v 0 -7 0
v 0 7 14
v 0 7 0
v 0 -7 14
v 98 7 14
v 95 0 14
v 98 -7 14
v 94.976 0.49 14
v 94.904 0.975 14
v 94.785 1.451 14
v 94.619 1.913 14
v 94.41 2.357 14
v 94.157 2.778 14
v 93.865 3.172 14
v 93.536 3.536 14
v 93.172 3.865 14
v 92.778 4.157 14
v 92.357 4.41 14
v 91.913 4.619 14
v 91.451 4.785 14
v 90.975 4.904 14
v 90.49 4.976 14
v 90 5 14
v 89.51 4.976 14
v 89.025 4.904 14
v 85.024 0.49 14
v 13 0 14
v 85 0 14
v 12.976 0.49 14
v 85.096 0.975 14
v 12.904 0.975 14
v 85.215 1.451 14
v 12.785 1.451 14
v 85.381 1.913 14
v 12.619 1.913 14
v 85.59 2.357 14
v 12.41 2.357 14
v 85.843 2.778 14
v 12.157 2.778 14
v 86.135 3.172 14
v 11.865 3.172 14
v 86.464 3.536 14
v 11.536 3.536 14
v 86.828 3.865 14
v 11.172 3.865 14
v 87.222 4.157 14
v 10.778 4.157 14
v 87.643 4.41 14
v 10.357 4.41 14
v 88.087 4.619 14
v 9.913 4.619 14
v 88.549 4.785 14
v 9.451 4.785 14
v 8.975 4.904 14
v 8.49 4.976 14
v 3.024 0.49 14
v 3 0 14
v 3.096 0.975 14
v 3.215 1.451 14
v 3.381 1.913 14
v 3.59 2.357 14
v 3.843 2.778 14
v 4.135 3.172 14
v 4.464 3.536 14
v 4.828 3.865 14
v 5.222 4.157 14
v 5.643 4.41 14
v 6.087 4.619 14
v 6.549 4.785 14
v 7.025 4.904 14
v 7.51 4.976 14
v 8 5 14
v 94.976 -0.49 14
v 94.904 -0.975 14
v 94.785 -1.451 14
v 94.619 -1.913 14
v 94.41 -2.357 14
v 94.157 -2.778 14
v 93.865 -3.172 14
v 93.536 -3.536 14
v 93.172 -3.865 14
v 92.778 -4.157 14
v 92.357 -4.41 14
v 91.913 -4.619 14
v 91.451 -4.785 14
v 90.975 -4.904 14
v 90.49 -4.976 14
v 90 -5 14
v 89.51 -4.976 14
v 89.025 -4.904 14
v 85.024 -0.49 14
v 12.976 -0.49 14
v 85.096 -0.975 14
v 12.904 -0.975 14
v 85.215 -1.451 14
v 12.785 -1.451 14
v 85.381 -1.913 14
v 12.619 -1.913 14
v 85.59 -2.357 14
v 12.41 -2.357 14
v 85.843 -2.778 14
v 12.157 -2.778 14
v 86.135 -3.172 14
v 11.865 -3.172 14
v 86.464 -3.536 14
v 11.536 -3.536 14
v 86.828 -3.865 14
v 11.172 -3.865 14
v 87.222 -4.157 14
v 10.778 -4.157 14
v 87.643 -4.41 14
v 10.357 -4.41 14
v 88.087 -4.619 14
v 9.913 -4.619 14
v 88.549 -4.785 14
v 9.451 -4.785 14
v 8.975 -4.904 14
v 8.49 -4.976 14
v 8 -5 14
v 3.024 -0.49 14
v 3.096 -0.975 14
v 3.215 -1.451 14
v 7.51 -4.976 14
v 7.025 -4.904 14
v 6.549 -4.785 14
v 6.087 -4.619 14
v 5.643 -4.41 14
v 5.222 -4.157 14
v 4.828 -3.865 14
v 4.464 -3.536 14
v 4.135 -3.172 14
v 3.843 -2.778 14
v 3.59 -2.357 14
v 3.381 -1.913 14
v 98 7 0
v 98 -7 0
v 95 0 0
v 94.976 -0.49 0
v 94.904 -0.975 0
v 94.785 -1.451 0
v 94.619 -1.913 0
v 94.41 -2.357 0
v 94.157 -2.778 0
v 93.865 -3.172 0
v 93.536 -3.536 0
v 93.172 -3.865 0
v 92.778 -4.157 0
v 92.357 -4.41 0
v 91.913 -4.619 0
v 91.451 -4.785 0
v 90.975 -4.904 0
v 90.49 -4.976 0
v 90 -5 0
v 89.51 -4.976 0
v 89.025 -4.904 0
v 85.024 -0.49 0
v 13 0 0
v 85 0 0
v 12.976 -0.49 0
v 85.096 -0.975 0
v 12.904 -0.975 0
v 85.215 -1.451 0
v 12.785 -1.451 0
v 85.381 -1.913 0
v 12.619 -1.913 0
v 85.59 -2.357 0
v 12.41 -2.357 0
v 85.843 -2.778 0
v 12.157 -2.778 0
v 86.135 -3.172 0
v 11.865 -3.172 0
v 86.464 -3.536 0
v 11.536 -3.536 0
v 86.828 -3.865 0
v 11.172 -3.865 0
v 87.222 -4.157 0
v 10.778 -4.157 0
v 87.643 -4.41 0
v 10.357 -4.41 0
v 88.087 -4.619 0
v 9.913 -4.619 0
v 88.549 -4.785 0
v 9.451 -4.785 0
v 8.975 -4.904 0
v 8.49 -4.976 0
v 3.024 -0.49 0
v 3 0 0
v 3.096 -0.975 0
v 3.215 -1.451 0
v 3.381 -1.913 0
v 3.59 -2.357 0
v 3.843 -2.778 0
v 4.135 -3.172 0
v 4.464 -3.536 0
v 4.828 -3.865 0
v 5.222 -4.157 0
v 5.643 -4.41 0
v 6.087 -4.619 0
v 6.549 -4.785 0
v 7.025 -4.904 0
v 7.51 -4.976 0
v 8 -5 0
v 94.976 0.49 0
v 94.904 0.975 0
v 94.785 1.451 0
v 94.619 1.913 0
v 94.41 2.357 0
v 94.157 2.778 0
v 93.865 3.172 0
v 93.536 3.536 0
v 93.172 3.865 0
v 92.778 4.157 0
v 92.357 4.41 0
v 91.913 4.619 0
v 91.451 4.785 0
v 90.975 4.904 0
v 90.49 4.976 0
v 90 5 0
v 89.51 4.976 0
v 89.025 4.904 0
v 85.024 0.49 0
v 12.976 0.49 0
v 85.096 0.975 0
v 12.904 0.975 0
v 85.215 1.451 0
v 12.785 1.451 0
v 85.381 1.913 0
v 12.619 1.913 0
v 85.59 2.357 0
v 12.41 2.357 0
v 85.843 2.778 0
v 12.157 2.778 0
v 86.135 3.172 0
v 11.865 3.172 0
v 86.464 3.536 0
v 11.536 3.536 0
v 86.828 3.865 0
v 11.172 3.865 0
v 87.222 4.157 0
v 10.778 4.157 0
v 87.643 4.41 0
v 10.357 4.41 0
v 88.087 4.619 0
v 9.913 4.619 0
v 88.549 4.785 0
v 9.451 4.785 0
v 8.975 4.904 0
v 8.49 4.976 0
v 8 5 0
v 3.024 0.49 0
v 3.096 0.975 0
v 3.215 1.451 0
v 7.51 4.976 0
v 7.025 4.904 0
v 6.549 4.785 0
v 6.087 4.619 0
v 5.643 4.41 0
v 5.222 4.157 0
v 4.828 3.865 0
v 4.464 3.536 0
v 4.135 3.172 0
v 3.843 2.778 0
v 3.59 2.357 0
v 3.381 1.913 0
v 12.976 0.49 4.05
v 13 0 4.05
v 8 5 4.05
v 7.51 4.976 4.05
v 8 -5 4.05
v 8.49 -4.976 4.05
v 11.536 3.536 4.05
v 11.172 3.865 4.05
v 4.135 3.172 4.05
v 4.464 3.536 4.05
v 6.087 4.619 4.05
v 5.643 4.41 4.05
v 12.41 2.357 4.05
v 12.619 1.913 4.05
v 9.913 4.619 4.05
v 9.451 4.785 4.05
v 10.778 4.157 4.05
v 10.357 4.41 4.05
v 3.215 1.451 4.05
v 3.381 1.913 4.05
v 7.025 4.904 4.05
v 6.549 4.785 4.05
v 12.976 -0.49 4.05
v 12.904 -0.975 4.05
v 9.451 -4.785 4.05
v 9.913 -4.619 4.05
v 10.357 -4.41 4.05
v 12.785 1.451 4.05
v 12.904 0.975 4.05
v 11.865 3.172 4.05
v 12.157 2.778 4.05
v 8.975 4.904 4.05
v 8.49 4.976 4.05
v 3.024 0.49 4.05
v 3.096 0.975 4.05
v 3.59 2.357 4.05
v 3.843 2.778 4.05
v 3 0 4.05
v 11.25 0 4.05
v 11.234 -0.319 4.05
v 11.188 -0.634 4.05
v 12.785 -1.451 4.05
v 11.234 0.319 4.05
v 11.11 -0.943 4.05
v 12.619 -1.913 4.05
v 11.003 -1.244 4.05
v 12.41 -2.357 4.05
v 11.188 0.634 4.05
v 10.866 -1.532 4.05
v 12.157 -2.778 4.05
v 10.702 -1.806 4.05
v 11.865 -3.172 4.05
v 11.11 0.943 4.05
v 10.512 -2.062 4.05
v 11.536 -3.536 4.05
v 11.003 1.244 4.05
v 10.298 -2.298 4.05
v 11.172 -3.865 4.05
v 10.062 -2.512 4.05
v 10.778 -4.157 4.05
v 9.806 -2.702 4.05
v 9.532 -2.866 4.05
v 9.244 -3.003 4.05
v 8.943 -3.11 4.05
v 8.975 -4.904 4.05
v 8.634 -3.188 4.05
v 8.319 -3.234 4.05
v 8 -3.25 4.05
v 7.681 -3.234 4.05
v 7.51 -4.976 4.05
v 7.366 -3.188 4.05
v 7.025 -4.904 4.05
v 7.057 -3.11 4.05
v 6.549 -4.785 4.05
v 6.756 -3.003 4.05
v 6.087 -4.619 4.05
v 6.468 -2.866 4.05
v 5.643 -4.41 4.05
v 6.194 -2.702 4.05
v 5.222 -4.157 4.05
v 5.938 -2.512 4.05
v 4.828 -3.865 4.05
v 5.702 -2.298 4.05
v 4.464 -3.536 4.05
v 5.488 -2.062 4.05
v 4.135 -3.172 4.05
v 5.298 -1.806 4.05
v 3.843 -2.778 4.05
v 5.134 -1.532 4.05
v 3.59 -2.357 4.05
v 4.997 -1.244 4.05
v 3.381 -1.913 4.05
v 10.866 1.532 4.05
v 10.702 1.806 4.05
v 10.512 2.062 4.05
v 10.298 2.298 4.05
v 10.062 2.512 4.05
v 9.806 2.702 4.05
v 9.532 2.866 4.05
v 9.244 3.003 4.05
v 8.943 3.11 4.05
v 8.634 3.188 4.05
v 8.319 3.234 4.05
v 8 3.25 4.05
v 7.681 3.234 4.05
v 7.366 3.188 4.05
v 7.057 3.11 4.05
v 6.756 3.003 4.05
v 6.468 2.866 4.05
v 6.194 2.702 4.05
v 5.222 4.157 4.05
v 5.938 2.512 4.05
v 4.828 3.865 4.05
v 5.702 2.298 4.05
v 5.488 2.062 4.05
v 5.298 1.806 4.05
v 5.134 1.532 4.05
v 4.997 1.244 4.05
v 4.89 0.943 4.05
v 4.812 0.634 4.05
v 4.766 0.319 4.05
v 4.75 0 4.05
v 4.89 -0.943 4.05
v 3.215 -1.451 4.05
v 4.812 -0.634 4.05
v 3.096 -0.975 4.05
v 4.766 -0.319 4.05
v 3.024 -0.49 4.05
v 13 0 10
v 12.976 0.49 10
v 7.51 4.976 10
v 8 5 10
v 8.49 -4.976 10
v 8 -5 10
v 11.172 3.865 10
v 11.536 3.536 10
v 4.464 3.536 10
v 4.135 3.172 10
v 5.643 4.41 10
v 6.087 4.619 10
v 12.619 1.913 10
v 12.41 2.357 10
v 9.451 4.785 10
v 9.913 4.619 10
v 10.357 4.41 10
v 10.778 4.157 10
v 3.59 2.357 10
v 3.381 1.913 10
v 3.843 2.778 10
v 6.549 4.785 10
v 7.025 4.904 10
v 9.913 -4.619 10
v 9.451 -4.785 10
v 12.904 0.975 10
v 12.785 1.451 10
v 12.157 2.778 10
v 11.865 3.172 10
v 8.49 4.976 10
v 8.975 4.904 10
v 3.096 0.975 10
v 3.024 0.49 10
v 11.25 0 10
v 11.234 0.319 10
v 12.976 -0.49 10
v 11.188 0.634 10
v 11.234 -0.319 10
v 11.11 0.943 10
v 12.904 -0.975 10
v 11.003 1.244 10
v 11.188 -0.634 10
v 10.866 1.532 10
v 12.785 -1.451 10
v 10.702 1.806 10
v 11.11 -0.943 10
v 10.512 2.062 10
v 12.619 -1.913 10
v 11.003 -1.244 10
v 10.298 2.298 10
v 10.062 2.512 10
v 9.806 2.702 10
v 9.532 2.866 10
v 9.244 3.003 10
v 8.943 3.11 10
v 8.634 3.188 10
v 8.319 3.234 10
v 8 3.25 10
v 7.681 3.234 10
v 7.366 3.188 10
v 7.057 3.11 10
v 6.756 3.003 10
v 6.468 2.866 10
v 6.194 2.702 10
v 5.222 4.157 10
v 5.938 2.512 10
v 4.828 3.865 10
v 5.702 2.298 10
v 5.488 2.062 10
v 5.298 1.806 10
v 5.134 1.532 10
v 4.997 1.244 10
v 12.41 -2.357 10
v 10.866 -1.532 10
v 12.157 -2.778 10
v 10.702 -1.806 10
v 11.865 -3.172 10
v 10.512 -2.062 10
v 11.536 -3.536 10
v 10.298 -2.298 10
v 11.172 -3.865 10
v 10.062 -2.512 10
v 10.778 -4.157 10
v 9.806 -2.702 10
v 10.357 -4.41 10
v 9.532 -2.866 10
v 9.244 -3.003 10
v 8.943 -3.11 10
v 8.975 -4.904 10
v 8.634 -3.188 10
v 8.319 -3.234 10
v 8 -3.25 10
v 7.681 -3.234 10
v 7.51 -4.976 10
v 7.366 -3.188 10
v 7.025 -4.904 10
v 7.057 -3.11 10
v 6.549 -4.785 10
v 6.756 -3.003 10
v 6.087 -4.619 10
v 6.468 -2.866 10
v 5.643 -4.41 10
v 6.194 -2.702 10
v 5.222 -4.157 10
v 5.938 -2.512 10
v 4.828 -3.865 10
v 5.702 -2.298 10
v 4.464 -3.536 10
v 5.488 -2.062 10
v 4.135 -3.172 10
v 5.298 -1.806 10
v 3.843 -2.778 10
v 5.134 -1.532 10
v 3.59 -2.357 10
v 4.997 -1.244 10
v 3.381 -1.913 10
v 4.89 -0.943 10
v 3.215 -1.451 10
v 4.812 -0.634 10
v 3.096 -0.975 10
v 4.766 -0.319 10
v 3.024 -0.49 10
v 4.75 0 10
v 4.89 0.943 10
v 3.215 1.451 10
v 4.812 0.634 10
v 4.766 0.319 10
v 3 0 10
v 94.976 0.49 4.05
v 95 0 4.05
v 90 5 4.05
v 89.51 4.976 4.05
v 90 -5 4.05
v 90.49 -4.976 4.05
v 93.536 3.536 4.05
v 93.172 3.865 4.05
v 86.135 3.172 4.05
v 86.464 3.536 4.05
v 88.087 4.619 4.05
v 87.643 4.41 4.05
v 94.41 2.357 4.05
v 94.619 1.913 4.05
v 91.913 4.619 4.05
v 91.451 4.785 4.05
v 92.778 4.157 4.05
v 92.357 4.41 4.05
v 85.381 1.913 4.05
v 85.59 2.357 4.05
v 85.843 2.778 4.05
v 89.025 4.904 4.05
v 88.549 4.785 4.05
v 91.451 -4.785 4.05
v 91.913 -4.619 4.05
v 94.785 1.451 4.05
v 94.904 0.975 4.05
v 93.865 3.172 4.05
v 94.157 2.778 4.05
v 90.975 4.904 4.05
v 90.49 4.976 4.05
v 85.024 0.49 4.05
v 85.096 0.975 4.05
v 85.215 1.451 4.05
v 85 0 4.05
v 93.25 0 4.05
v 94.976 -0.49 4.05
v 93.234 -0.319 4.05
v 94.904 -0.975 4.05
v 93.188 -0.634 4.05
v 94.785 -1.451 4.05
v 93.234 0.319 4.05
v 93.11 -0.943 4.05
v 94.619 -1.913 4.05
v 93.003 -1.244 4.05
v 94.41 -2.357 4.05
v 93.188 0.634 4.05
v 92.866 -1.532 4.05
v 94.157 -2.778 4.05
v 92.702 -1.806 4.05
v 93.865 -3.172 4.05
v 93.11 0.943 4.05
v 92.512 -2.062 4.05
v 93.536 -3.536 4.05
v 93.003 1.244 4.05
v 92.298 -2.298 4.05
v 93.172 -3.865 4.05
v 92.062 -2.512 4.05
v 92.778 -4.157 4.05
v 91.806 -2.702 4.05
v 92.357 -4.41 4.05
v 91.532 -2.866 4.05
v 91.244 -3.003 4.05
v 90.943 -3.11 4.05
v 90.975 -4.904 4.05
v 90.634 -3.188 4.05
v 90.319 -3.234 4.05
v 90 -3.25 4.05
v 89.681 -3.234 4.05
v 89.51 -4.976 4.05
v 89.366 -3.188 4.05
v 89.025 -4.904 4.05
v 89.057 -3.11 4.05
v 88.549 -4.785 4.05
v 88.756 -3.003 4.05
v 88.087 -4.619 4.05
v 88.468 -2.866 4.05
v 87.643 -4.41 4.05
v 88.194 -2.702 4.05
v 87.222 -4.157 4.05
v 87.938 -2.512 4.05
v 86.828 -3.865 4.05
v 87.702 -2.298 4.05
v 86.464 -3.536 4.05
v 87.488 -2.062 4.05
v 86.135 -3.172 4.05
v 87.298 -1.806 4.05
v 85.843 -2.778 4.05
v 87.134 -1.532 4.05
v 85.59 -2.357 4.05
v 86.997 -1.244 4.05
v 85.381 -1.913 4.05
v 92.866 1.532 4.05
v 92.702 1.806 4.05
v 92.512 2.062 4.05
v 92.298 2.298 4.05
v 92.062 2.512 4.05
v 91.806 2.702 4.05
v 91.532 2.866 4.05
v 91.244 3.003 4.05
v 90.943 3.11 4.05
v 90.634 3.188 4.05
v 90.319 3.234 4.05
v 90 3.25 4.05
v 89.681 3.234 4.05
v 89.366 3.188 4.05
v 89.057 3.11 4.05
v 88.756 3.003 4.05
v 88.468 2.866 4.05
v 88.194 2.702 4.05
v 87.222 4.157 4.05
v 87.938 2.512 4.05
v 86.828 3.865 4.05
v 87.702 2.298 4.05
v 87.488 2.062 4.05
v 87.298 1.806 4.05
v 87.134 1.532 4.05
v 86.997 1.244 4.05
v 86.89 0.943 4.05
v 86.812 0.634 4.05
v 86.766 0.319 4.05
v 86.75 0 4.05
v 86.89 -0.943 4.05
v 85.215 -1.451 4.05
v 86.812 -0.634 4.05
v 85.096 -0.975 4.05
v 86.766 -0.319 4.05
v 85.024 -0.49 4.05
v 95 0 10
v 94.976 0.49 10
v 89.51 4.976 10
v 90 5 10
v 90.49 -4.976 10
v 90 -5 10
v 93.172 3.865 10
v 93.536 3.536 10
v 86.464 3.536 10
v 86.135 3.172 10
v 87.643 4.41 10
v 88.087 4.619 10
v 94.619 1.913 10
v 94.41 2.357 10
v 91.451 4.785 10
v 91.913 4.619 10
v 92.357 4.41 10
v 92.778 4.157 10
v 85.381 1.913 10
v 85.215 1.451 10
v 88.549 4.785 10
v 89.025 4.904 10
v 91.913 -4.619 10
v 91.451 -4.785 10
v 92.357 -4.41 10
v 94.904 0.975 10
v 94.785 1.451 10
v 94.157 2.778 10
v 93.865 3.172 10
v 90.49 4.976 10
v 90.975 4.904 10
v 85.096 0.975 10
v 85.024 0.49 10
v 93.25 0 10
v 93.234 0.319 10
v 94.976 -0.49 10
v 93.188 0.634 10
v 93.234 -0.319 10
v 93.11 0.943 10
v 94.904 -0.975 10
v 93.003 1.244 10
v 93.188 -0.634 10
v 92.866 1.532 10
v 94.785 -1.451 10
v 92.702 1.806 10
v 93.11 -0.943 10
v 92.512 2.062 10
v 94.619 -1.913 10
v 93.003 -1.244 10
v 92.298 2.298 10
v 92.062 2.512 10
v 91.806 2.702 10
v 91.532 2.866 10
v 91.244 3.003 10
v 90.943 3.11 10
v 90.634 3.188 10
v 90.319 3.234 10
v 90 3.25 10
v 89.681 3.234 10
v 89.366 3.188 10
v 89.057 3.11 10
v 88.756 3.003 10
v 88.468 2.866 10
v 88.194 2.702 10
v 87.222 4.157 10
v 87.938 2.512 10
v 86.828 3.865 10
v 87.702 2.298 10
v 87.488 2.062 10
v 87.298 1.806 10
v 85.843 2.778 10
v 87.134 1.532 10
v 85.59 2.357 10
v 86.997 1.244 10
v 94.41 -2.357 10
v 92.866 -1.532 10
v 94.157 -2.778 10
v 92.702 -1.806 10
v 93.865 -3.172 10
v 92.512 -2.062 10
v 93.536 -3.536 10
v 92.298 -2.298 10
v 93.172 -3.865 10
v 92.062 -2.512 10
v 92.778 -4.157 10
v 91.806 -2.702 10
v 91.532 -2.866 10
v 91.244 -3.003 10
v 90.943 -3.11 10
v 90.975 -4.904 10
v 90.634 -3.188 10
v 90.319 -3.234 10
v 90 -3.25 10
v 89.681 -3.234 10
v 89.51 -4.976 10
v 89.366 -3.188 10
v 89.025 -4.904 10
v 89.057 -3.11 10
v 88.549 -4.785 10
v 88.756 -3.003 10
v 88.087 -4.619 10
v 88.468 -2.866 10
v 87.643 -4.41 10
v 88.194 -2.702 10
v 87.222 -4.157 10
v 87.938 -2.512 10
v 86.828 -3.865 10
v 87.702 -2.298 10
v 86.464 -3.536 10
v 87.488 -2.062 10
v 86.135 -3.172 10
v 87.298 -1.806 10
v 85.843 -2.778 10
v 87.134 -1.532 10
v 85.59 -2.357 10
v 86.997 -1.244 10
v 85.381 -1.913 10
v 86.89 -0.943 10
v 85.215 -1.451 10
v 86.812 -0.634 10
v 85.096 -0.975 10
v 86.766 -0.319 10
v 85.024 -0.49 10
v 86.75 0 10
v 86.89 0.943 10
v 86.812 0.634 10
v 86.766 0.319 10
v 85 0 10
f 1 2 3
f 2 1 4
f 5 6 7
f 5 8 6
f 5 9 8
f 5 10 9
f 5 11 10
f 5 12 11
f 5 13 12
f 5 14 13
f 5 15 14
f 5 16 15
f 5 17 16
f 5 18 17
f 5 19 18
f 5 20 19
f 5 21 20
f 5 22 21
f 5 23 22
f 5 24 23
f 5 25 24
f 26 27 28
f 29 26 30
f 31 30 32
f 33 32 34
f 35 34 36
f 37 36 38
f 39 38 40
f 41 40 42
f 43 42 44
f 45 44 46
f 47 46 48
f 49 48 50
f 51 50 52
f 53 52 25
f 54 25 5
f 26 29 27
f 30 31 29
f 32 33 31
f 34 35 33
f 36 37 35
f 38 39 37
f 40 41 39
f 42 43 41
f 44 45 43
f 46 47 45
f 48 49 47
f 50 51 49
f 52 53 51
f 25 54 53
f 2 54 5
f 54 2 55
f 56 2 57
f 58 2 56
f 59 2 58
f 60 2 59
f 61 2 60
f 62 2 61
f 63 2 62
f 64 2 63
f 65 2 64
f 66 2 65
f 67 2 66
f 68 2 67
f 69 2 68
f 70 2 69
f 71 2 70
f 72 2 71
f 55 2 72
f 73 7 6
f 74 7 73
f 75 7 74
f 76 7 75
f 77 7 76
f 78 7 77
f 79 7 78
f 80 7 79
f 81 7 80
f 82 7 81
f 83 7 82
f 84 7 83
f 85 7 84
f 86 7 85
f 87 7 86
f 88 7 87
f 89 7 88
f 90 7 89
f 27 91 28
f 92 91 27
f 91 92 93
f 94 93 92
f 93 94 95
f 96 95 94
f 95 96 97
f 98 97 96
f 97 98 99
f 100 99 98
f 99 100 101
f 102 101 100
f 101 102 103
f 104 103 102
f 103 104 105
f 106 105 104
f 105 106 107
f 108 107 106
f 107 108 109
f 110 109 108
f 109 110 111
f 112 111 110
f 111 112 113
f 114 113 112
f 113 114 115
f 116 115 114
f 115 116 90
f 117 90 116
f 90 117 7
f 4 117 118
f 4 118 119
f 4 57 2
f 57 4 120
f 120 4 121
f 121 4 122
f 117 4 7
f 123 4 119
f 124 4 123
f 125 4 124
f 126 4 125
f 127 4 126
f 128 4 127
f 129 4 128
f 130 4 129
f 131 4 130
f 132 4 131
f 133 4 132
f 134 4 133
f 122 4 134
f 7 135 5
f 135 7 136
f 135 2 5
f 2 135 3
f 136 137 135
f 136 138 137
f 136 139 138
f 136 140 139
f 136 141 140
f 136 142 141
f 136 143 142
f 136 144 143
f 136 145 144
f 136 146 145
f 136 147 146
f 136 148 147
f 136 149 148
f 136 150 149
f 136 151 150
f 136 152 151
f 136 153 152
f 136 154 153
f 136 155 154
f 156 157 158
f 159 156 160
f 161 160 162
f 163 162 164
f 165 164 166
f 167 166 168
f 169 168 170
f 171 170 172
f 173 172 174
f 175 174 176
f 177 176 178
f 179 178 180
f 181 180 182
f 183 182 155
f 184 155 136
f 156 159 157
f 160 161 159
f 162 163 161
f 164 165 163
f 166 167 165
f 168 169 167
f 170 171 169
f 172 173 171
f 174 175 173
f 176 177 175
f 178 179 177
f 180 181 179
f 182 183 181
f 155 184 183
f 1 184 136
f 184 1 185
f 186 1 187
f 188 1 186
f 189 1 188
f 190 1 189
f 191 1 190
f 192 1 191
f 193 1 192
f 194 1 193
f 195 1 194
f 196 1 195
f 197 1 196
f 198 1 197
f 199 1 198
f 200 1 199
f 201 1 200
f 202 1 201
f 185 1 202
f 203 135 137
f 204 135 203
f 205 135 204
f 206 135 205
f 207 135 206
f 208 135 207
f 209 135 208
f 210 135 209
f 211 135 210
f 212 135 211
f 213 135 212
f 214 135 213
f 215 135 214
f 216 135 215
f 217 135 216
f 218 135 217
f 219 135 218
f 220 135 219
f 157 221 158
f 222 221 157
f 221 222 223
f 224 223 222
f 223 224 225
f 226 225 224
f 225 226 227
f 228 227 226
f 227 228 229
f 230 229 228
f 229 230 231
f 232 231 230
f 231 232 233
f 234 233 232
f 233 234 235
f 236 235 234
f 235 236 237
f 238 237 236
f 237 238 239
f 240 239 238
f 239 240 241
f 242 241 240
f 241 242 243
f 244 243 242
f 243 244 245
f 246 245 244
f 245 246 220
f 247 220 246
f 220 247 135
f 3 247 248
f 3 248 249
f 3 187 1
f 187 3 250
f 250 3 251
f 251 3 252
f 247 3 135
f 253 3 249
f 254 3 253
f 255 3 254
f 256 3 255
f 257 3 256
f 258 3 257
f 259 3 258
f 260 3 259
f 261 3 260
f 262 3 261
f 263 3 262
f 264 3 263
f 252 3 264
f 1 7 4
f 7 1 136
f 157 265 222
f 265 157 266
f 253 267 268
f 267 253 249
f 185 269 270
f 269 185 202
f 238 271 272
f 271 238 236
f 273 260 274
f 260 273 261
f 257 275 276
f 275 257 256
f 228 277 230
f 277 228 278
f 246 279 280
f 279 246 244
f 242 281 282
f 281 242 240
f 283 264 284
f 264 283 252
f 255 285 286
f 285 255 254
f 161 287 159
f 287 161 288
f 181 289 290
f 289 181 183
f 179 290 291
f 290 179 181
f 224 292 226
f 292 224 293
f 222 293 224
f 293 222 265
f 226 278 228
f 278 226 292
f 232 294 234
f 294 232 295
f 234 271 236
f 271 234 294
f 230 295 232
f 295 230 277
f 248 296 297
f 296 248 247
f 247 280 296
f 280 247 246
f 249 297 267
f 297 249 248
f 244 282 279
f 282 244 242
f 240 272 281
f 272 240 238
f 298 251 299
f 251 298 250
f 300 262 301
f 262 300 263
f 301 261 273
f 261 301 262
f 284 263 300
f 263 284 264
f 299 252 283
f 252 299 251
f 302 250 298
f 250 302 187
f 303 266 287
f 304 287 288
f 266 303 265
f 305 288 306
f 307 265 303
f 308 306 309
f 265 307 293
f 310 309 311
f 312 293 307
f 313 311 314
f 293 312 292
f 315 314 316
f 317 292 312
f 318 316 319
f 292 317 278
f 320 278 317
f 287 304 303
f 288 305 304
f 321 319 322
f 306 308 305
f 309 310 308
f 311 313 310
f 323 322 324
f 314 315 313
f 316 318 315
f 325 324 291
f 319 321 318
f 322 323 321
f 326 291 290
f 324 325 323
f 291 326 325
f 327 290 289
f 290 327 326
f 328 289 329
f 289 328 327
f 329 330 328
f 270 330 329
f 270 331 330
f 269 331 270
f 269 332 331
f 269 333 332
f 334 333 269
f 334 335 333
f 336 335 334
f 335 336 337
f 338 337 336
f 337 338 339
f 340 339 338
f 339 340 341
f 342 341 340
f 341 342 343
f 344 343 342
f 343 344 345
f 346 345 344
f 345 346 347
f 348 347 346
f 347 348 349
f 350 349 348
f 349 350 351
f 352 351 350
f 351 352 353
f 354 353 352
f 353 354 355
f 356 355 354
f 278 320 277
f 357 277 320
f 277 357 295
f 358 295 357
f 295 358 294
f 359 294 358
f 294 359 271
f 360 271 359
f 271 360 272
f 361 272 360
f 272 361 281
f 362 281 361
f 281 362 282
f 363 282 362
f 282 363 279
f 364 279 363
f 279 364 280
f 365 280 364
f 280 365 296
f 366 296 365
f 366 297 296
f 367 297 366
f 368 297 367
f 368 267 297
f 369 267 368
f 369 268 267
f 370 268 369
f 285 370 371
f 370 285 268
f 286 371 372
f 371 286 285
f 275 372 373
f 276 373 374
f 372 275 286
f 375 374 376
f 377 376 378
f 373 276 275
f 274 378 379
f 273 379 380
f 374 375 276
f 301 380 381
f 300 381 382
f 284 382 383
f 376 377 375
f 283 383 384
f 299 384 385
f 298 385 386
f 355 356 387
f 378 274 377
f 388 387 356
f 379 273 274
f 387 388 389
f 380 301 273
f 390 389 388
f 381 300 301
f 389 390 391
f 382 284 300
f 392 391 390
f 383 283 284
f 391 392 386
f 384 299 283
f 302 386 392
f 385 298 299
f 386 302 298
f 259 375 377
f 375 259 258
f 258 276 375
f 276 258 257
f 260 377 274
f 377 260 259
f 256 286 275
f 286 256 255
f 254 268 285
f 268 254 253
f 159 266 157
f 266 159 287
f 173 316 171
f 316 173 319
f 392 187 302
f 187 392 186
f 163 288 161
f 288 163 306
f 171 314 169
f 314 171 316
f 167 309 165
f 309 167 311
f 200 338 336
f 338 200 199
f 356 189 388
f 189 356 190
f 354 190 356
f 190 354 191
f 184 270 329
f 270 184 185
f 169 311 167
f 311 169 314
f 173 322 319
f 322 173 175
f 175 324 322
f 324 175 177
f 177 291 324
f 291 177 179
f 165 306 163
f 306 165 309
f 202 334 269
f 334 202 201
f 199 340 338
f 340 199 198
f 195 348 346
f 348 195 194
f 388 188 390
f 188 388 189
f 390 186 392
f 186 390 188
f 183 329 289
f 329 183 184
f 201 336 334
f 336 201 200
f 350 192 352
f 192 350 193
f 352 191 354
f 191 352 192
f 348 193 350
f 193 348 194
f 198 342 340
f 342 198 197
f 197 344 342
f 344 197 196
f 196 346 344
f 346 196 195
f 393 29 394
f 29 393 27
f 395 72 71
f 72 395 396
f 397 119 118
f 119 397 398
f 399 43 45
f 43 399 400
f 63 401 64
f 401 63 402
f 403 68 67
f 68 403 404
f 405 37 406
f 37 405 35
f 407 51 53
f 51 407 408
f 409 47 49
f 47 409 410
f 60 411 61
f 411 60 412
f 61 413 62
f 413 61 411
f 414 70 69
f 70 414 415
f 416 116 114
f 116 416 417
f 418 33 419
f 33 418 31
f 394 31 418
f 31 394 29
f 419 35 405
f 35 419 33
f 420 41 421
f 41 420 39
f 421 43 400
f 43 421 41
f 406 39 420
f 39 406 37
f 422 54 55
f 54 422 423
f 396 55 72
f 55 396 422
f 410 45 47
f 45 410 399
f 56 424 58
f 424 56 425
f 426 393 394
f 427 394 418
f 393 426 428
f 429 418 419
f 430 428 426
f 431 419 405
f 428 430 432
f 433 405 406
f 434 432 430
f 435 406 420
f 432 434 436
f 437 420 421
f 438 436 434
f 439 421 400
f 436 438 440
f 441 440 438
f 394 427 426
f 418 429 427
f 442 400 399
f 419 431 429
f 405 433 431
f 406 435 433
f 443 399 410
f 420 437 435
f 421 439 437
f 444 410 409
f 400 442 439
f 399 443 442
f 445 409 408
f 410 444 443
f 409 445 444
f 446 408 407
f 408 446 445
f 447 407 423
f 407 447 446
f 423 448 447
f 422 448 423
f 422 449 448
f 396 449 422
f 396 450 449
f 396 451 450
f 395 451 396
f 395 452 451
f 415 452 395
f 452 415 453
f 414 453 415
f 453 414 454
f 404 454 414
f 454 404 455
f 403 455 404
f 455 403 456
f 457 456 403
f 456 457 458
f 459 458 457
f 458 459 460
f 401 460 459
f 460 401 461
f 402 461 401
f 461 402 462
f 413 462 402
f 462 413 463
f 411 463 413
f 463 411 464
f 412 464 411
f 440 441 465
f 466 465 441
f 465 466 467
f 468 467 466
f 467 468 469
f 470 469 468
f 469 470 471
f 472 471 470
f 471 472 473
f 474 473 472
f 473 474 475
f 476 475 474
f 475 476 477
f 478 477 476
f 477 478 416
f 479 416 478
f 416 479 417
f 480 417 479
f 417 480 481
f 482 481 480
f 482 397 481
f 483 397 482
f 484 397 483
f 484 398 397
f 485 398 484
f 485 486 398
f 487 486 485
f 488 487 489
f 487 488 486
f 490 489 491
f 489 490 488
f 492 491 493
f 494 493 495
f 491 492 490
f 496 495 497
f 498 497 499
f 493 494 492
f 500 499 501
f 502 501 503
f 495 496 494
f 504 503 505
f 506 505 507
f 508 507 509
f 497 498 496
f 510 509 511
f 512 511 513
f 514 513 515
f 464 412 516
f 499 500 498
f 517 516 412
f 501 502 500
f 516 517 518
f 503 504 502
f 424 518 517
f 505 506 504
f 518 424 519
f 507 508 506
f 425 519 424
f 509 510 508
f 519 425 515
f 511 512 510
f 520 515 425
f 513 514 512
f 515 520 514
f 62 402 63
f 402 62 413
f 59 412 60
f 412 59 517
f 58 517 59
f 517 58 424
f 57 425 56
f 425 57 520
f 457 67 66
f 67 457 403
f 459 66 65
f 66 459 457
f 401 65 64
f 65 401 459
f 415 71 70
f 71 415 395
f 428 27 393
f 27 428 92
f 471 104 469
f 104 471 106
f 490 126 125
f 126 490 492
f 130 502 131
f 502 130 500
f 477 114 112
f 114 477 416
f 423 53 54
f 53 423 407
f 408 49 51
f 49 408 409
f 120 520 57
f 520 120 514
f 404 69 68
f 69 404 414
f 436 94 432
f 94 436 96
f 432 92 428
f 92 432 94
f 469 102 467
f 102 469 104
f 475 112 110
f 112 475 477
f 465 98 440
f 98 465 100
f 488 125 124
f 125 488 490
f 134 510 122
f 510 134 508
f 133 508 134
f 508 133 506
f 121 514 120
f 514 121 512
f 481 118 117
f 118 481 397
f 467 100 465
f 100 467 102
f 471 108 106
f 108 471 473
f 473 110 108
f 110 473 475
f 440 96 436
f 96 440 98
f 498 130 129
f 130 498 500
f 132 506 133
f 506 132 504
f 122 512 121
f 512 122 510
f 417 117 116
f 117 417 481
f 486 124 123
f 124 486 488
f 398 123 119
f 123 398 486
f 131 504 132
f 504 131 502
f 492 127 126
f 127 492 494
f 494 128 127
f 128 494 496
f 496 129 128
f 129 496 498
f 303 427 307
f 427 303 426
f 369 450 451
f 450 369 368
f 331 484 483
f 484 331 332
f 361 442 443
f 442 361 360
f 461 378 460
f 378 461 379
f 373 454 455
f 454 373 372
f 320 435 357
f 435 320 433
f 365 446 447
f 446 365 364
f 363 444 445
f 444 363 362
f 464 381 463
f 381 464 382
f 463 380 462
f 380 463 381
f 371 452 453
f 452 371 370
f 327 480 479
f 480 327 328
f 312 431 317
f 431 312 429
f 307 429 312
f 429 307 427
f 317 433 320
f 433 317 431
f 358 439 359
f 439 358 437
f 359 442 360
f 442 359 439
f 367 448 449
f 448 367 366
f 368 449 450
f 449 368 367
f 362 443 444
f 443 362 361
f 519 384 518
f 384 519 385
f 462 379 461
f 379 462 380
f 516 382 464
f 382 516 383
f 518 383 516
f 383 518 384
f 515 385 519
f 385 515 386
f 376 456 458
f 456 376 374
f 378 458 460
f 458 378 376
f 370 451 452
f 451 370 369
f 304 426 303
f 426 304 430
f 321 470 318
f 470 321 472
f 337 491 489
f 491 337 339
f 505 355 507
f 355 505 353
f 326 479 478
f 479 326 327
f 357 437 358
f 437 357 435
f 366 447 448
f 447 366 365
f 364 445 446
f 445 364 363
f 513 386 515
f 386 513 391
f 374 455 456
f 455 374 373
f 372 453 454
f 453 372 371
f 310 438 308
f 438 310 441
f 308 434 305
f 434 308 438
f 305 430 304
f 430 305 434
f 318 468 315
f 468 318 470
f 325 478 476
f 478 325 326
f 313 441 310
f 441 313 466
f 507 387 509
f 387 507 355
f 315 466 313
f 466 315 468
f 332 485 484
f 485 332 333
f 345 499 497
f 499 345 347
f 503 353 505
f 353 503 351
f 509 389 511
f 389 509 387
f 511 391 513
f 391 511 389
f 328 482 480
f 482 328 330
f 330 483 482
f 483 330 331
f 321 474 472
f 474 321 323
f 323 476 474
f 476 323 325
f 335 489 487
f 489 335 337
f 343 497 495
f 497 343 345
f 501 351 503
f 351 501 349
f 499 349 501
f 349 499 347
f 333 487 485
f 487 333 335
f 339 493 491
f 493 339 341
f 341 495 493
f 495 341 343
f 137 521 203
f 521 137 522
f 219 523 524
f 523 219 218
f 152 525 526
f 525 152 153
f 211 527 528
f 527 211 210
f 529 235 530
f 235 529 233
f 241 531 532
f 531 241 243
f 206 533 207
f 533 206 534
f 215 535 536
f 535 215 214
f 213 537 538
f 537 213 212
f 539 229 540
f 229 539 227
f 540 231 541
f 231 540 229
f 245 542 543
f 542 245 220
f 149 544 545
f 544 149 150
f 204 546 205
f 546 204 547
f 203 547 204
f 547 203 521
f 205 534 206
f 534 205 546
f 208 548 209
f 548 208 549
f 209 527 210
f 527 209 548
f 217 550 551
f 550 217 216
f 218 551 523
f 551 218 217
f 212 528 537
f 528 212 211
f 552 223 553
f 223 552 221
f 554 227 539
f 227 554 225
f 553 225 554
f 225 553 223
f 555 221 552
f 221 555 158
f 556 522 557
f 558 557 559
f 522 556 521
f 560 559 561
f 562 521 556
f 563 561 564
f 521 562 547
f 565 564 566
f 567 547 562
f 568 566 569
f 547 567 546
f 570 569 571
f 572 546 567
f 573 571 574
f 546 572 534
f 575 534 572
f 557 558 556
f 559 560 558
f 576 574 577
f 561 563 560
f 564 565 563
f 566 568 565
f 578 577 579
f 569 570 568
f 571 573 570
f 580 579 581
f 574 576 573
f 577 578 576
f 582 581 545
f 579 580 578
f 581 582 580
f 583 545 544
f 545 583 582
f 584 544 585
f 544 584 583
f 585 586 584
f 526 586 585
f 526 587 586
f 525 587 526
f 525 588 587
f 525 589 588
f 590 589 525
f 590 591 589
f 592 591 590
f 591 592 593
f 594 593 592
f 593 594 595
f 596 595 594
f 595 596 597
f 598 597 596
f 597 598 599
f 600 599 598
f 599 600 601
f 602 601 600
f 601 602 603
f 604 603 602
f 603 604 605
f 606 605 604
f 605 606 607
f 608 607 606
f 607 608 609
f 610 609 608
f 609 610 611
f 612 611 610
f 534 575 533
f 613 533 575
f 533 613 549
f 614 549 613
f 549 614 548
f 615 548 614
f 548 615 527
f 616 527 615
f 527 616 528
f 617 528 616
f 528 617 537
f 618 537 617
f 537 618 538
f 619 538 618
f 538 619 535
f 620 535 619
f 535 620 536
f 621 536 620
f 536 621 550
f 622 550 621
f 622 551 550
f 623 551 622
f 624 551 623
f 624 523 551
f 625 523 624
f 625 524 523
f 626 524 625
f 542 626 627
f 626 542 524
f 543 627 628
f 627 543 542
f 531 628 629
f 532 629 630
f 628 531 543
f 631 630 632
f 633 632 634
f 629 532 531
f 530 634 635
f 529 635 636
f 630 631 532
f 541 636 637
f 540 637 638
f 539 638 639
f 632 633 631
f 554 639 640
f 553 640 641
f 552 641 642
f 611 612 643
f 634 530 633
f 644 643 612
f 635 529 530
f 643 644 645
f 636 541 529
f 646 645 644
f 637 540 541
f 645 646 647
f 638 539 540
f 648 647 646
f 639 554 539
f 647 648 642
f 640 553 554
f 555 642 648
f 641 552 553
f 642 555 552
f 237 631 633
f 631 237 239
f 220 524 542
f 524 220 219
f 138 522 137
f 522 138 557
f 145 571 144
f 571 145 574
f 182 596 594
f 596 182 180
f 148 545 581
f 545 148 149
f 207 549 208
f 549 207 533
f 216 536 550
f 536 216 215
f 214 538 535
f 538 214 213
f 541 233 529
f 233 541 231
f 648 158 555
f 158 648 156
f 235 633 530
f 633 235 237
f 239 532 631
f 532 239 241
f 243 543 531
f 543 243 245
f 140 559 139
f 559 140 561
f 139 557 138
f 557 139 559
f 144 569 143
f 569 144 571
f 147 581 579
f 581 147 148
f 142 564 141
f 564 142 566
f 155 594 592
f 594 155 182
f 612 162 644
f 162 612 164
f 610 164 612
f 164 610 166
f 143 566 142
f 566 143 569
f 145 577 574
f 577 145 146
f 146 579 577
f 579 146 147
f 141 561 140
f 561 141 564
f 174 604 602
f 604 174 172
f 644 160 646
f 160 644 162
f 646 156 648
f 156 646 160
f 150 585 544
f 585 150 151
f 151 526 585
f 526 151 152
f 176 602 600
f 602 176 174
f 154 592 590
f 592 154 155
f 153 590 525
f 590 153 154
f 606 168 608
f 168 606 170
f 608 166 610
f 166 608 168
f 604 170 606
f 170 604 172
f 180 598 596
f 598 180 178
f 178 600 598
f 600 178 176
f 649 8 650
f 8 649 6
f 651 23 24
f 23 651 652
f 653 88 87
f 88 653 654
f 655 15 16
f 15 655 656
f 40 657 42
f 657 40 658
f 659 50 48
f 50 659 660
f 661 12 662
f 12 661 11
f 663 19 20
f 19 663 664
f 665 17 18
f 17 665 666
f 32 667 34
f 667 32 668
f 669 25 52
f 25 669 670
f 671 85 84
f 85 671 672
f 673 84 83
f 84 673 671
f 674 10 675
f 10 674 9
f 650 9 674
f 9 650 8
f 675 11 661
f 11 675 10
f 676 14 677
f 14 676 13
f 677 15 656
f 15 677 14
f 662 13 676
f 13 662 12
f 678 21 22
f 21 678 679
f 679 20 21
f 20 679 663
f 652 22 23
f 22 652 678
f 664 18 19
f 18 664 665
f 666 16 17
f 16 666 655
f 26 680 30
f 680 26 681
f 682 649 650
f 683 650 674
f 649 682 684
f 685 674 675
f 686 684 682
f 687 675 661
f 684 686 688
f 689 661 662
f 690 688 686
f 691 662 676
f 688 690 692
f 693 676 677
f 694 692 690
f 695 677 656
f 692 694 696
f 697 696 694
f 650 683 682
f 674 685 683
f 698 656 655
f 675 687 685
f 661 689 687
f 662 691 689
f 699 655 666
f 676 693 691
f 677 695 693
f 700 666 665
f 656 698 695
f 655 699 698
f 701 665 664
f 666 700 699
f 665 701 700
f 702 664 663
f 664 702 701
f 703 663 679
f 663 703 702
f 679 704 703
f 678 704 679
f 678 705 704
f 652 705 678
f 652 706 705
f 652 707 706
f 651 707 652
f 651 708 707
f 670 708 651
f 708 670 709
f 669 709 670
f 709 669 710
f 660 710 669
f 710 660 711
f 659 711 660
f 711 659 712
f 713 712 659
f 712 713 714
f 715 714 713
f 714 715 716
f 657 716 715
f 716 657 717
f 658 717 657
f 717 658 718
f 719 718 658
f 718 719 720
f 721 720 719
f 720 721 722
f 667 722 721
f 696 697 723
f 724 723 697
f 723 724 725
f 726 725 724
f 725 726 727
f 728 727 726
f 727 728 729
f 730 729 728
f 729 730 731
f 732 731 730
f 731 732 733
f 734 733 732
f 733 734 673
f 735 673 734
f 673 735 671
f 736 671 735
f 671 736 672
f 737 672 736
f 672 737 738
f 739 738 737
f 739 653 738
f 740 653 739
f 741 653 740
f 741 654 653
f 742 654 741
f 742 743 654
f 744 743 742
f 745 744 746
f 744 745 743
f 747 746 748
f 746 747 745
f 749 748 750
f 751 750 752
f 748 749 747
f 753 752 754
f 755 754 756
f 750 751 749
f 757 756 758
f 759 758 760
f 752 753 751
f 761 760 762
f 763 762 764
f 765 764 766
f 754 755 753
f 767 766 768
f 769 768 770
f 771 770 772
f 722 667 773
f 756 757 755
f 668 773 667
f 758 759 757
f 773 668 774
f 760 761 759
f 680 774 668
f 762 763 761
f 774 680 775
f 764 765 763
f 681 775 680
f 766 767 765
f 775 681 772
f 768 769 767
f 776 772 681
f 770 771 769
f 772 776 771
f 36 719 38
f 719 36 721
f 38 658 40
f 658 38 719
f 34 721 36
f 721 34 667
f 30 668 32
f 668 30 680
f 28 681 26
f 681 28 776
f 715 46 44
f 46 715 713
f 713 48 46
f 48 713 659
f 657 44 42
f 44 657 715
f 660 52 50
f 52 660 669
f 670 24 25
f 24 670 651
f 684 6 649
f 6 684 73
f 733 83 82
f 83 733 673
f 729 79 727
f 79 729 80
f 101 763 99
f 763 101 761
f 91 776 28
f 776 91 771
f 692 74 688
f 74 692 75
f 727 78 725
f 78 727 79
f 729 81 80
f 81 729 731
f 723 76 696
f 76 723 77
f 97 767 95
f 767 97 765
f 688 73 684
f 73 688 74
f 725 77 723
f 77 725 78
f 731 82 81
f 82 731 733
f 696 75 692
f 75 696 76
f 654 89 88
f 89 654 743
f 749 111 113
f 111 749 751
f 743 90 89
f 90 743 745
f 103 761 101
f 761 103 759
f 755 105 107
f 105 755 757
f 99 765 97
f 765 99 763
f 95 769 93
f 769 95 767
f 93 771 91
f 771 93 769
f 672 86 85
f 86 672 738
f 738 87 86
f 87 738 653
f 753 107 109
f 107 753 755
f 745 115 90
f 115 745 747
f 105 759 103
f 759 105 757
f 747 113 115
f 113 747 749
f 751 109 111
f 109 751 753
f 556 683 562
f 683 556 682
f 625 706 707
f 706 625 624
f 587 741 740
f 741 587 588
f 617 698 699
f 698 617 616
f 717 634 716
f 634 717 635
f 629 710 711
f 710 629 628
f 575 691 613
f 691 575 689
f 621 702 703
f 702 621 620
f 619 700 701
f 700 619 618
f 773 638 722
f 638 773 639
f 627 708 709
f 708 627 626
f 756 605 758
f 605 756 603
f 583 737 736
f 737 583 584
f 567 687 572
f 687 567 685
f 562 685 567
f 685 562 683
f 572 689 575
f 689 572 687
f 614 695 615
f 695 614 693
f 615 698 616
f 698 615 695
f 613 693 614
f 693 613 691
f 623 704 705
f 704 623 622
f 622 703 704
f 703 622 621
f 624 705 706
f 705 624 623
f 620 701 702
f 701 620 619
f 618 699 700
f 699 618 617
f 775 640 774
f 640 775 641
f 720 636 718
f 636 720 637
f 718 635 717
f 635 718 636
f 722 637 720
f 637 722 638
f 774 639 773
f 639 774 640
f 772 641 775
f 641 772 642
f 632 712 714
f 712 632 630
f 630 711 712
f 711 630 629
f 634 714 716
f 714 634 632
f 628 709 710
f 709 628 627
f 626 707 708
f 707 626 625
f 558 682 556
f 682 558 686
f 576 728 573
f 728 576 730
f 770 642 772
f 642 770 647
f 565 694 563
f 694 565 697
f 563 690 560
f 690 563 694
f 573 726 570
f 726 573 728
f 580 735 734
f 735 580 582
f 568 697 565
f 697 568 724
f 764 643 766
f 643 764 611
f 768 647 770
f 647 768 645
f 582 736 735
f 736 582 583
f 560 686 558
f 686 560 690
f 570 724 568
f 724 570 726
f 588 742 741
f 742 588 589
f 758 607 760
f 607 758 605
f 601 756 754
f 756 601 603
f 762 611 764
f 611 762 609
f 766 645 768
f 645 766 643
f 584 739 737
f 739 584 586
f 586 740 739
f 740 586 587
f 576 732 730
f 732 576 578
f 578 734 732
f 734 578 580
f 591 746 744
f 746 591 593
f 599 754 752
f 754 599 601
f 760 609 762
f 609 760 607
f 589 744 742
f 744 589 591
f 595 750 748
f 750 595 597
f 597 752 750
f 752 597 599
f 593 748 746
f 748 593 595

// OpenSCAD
difference() {
    translate([0,-7,0])
    cube([98,14,14]);
    
    translate([8,0,0])
    cylinder(d=10,h=4.05, $fn=64);
    
    translate([8,0,10])
    cylinder(d=10,h=4.05, $fn=64);
    
    translate([8,0,0])
    cylinder(d=6.5,h=50, $fn=64);
    
    translate([90,0,0])
    cylinder(d=10,h=4.05, $fn=64);
    
    translate([90,0,10])
    cylinder(d=10,h=4.05, $fn=64);
    
    translate([90,0,0])
    cylinder(d=6.5,h=50, $fn=64);
    
}
